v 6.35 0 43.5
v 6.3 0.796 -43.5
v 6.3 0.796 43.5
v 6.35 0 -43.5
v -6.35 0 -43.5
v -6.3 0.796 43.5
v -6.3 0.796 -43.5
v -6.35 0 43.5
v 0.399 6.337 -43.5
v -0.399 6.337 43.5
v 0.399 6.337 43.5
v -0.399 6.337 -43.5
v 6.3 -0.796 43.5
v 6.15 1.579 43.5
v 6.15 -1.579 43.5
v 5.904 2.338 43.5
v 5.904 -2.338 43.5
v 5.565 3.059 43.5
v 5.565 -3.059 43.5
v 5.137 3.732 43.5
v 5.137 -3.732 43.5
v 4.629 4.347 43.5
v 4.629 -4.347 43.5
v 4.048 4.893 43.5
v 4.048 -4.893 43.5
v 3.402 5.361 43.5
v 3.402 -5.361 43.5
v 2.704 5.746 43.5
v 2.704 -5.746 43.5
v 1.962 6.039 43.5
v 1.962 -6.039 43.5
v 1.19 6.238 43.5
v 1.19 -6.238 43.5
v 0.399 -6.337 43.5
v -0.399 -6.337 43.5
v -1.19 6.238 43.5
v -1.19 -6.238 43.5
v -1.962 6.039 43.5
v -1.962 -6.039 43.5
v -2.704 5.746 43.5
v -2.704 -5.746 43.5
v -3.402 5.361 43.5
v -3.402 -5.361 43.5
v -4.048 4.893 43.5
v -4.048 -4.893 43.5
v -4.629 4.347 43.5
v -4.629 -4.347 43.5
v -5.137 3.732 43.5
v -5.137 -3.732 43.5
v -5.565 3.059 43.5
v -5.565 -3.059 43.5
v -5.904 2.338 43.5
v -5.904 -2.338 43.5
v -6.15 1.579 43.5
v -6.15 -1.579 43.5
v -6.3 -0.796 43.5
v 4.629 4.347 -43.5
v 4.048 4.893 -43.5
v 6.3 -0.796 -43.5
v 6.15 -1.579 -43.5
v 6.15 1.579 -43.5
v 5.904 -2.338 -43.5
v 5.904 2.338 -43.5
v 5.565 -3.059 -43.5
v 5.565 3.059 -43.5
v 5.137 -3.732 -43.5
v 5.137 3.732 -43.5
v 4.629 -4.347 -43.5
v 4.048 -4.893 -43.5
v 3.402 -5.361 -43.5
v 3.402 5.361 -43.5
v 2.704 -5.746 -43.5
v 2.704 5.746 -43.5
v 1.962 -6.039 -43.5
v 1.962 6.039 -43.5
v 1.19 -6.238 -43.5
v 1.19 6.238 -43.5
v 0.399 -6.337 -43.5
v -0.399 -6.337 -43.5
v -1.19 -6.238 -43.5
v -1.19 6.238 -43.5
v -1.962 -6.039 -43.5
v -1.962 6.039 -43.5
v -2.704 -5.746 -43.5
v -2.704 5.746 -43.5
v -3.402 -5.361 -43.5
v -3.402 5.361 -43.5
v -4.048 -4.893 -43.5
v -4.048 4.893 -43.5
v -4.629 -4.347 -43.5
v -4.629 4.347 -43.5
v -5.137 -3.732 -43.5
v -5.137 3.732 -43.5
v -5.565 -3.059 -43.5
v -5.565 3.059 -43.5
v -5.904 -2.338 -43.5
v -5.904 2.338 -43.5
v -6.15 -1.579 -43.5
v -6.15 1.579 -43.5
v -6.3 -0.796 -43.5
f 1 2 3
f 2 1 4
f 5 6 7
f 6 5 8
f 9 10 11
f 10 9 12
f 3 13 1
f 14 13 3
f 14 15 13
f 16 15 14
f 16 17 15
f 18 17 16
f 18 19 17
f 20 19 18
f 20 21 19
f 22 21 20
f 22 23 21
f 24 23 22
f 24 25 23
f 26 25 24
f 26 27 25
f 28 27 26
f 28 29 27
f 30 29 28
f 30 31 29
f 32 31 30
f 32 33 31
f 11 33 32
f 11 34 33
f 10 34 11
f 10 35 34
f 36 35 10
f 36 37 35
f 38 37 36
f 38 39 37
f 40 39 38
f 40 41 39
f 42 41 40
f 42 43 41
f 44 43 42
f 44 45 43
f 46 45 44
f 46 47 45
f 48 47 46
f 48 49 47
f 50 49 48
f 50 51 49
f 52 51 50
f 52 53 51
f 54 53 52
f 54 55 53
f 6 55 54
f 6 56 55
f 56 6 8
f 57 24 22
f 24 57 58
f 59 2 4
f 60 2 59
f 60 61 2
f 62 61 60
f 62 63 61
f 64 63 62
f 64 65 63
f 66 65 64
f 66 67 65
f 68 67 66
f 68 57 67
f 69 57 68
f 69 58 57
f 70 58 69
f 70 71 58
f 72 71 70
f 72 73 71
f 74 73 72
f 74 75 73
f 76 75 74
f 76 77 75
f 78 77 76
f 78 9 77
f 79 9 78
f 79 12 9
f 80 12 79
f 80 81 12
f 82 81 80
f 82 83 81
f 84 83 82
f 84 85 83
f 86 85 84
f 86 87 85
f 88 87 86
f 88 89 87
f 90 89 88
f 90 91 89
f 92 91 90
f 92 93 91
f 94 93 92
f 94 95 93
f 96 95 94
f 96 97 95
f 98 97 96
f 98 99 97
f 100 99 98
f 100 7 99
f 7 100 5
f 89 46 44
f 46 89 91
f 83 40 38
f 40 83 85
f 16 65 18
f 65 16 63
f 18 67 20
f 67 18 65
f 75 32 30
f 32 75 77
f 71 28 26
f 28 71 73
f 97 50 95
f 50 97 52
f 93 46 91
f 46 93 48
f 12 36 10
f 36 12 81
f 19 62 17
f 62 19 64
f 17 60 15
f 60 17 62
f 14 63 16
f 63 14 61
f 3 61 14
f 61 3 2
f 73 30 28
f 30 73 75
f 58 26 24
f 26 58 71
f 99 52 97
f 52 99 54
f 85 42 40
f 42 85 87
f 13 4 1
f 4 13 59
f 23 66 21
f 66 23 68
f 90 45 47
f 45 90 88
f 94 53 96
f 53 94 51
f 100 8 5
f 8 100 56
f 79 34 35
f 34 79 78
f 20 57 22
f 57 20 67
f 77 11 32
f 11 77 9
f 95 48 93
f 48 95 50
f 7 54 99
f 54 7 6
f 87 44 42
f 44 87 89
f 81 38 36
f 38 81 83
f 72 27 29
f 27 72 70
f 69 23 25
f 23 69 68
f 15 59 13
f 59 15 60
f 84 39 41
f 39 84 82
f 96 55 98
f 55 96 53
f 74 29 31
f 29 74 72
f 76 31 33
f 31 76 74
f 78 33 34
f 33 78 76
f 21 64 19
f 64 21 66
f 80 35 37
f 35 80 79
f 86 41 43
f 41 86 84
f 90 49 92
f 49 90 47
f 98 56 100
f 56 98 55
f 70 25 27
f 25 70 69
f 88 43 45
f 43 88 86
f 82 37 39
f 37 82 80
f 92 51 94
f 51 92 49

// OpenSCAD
$fn = 50;


difference() {
	union() {
		translate(v = [0, 0, -43.5000000000]) {
			cylinder(h = 87, r = 6.3500000000);
		}
	}
	union() {
		translate(v = [0, 0, -100.0000000000]) {
			cylinder(h = 200, r = 0);
		}
	}
}
